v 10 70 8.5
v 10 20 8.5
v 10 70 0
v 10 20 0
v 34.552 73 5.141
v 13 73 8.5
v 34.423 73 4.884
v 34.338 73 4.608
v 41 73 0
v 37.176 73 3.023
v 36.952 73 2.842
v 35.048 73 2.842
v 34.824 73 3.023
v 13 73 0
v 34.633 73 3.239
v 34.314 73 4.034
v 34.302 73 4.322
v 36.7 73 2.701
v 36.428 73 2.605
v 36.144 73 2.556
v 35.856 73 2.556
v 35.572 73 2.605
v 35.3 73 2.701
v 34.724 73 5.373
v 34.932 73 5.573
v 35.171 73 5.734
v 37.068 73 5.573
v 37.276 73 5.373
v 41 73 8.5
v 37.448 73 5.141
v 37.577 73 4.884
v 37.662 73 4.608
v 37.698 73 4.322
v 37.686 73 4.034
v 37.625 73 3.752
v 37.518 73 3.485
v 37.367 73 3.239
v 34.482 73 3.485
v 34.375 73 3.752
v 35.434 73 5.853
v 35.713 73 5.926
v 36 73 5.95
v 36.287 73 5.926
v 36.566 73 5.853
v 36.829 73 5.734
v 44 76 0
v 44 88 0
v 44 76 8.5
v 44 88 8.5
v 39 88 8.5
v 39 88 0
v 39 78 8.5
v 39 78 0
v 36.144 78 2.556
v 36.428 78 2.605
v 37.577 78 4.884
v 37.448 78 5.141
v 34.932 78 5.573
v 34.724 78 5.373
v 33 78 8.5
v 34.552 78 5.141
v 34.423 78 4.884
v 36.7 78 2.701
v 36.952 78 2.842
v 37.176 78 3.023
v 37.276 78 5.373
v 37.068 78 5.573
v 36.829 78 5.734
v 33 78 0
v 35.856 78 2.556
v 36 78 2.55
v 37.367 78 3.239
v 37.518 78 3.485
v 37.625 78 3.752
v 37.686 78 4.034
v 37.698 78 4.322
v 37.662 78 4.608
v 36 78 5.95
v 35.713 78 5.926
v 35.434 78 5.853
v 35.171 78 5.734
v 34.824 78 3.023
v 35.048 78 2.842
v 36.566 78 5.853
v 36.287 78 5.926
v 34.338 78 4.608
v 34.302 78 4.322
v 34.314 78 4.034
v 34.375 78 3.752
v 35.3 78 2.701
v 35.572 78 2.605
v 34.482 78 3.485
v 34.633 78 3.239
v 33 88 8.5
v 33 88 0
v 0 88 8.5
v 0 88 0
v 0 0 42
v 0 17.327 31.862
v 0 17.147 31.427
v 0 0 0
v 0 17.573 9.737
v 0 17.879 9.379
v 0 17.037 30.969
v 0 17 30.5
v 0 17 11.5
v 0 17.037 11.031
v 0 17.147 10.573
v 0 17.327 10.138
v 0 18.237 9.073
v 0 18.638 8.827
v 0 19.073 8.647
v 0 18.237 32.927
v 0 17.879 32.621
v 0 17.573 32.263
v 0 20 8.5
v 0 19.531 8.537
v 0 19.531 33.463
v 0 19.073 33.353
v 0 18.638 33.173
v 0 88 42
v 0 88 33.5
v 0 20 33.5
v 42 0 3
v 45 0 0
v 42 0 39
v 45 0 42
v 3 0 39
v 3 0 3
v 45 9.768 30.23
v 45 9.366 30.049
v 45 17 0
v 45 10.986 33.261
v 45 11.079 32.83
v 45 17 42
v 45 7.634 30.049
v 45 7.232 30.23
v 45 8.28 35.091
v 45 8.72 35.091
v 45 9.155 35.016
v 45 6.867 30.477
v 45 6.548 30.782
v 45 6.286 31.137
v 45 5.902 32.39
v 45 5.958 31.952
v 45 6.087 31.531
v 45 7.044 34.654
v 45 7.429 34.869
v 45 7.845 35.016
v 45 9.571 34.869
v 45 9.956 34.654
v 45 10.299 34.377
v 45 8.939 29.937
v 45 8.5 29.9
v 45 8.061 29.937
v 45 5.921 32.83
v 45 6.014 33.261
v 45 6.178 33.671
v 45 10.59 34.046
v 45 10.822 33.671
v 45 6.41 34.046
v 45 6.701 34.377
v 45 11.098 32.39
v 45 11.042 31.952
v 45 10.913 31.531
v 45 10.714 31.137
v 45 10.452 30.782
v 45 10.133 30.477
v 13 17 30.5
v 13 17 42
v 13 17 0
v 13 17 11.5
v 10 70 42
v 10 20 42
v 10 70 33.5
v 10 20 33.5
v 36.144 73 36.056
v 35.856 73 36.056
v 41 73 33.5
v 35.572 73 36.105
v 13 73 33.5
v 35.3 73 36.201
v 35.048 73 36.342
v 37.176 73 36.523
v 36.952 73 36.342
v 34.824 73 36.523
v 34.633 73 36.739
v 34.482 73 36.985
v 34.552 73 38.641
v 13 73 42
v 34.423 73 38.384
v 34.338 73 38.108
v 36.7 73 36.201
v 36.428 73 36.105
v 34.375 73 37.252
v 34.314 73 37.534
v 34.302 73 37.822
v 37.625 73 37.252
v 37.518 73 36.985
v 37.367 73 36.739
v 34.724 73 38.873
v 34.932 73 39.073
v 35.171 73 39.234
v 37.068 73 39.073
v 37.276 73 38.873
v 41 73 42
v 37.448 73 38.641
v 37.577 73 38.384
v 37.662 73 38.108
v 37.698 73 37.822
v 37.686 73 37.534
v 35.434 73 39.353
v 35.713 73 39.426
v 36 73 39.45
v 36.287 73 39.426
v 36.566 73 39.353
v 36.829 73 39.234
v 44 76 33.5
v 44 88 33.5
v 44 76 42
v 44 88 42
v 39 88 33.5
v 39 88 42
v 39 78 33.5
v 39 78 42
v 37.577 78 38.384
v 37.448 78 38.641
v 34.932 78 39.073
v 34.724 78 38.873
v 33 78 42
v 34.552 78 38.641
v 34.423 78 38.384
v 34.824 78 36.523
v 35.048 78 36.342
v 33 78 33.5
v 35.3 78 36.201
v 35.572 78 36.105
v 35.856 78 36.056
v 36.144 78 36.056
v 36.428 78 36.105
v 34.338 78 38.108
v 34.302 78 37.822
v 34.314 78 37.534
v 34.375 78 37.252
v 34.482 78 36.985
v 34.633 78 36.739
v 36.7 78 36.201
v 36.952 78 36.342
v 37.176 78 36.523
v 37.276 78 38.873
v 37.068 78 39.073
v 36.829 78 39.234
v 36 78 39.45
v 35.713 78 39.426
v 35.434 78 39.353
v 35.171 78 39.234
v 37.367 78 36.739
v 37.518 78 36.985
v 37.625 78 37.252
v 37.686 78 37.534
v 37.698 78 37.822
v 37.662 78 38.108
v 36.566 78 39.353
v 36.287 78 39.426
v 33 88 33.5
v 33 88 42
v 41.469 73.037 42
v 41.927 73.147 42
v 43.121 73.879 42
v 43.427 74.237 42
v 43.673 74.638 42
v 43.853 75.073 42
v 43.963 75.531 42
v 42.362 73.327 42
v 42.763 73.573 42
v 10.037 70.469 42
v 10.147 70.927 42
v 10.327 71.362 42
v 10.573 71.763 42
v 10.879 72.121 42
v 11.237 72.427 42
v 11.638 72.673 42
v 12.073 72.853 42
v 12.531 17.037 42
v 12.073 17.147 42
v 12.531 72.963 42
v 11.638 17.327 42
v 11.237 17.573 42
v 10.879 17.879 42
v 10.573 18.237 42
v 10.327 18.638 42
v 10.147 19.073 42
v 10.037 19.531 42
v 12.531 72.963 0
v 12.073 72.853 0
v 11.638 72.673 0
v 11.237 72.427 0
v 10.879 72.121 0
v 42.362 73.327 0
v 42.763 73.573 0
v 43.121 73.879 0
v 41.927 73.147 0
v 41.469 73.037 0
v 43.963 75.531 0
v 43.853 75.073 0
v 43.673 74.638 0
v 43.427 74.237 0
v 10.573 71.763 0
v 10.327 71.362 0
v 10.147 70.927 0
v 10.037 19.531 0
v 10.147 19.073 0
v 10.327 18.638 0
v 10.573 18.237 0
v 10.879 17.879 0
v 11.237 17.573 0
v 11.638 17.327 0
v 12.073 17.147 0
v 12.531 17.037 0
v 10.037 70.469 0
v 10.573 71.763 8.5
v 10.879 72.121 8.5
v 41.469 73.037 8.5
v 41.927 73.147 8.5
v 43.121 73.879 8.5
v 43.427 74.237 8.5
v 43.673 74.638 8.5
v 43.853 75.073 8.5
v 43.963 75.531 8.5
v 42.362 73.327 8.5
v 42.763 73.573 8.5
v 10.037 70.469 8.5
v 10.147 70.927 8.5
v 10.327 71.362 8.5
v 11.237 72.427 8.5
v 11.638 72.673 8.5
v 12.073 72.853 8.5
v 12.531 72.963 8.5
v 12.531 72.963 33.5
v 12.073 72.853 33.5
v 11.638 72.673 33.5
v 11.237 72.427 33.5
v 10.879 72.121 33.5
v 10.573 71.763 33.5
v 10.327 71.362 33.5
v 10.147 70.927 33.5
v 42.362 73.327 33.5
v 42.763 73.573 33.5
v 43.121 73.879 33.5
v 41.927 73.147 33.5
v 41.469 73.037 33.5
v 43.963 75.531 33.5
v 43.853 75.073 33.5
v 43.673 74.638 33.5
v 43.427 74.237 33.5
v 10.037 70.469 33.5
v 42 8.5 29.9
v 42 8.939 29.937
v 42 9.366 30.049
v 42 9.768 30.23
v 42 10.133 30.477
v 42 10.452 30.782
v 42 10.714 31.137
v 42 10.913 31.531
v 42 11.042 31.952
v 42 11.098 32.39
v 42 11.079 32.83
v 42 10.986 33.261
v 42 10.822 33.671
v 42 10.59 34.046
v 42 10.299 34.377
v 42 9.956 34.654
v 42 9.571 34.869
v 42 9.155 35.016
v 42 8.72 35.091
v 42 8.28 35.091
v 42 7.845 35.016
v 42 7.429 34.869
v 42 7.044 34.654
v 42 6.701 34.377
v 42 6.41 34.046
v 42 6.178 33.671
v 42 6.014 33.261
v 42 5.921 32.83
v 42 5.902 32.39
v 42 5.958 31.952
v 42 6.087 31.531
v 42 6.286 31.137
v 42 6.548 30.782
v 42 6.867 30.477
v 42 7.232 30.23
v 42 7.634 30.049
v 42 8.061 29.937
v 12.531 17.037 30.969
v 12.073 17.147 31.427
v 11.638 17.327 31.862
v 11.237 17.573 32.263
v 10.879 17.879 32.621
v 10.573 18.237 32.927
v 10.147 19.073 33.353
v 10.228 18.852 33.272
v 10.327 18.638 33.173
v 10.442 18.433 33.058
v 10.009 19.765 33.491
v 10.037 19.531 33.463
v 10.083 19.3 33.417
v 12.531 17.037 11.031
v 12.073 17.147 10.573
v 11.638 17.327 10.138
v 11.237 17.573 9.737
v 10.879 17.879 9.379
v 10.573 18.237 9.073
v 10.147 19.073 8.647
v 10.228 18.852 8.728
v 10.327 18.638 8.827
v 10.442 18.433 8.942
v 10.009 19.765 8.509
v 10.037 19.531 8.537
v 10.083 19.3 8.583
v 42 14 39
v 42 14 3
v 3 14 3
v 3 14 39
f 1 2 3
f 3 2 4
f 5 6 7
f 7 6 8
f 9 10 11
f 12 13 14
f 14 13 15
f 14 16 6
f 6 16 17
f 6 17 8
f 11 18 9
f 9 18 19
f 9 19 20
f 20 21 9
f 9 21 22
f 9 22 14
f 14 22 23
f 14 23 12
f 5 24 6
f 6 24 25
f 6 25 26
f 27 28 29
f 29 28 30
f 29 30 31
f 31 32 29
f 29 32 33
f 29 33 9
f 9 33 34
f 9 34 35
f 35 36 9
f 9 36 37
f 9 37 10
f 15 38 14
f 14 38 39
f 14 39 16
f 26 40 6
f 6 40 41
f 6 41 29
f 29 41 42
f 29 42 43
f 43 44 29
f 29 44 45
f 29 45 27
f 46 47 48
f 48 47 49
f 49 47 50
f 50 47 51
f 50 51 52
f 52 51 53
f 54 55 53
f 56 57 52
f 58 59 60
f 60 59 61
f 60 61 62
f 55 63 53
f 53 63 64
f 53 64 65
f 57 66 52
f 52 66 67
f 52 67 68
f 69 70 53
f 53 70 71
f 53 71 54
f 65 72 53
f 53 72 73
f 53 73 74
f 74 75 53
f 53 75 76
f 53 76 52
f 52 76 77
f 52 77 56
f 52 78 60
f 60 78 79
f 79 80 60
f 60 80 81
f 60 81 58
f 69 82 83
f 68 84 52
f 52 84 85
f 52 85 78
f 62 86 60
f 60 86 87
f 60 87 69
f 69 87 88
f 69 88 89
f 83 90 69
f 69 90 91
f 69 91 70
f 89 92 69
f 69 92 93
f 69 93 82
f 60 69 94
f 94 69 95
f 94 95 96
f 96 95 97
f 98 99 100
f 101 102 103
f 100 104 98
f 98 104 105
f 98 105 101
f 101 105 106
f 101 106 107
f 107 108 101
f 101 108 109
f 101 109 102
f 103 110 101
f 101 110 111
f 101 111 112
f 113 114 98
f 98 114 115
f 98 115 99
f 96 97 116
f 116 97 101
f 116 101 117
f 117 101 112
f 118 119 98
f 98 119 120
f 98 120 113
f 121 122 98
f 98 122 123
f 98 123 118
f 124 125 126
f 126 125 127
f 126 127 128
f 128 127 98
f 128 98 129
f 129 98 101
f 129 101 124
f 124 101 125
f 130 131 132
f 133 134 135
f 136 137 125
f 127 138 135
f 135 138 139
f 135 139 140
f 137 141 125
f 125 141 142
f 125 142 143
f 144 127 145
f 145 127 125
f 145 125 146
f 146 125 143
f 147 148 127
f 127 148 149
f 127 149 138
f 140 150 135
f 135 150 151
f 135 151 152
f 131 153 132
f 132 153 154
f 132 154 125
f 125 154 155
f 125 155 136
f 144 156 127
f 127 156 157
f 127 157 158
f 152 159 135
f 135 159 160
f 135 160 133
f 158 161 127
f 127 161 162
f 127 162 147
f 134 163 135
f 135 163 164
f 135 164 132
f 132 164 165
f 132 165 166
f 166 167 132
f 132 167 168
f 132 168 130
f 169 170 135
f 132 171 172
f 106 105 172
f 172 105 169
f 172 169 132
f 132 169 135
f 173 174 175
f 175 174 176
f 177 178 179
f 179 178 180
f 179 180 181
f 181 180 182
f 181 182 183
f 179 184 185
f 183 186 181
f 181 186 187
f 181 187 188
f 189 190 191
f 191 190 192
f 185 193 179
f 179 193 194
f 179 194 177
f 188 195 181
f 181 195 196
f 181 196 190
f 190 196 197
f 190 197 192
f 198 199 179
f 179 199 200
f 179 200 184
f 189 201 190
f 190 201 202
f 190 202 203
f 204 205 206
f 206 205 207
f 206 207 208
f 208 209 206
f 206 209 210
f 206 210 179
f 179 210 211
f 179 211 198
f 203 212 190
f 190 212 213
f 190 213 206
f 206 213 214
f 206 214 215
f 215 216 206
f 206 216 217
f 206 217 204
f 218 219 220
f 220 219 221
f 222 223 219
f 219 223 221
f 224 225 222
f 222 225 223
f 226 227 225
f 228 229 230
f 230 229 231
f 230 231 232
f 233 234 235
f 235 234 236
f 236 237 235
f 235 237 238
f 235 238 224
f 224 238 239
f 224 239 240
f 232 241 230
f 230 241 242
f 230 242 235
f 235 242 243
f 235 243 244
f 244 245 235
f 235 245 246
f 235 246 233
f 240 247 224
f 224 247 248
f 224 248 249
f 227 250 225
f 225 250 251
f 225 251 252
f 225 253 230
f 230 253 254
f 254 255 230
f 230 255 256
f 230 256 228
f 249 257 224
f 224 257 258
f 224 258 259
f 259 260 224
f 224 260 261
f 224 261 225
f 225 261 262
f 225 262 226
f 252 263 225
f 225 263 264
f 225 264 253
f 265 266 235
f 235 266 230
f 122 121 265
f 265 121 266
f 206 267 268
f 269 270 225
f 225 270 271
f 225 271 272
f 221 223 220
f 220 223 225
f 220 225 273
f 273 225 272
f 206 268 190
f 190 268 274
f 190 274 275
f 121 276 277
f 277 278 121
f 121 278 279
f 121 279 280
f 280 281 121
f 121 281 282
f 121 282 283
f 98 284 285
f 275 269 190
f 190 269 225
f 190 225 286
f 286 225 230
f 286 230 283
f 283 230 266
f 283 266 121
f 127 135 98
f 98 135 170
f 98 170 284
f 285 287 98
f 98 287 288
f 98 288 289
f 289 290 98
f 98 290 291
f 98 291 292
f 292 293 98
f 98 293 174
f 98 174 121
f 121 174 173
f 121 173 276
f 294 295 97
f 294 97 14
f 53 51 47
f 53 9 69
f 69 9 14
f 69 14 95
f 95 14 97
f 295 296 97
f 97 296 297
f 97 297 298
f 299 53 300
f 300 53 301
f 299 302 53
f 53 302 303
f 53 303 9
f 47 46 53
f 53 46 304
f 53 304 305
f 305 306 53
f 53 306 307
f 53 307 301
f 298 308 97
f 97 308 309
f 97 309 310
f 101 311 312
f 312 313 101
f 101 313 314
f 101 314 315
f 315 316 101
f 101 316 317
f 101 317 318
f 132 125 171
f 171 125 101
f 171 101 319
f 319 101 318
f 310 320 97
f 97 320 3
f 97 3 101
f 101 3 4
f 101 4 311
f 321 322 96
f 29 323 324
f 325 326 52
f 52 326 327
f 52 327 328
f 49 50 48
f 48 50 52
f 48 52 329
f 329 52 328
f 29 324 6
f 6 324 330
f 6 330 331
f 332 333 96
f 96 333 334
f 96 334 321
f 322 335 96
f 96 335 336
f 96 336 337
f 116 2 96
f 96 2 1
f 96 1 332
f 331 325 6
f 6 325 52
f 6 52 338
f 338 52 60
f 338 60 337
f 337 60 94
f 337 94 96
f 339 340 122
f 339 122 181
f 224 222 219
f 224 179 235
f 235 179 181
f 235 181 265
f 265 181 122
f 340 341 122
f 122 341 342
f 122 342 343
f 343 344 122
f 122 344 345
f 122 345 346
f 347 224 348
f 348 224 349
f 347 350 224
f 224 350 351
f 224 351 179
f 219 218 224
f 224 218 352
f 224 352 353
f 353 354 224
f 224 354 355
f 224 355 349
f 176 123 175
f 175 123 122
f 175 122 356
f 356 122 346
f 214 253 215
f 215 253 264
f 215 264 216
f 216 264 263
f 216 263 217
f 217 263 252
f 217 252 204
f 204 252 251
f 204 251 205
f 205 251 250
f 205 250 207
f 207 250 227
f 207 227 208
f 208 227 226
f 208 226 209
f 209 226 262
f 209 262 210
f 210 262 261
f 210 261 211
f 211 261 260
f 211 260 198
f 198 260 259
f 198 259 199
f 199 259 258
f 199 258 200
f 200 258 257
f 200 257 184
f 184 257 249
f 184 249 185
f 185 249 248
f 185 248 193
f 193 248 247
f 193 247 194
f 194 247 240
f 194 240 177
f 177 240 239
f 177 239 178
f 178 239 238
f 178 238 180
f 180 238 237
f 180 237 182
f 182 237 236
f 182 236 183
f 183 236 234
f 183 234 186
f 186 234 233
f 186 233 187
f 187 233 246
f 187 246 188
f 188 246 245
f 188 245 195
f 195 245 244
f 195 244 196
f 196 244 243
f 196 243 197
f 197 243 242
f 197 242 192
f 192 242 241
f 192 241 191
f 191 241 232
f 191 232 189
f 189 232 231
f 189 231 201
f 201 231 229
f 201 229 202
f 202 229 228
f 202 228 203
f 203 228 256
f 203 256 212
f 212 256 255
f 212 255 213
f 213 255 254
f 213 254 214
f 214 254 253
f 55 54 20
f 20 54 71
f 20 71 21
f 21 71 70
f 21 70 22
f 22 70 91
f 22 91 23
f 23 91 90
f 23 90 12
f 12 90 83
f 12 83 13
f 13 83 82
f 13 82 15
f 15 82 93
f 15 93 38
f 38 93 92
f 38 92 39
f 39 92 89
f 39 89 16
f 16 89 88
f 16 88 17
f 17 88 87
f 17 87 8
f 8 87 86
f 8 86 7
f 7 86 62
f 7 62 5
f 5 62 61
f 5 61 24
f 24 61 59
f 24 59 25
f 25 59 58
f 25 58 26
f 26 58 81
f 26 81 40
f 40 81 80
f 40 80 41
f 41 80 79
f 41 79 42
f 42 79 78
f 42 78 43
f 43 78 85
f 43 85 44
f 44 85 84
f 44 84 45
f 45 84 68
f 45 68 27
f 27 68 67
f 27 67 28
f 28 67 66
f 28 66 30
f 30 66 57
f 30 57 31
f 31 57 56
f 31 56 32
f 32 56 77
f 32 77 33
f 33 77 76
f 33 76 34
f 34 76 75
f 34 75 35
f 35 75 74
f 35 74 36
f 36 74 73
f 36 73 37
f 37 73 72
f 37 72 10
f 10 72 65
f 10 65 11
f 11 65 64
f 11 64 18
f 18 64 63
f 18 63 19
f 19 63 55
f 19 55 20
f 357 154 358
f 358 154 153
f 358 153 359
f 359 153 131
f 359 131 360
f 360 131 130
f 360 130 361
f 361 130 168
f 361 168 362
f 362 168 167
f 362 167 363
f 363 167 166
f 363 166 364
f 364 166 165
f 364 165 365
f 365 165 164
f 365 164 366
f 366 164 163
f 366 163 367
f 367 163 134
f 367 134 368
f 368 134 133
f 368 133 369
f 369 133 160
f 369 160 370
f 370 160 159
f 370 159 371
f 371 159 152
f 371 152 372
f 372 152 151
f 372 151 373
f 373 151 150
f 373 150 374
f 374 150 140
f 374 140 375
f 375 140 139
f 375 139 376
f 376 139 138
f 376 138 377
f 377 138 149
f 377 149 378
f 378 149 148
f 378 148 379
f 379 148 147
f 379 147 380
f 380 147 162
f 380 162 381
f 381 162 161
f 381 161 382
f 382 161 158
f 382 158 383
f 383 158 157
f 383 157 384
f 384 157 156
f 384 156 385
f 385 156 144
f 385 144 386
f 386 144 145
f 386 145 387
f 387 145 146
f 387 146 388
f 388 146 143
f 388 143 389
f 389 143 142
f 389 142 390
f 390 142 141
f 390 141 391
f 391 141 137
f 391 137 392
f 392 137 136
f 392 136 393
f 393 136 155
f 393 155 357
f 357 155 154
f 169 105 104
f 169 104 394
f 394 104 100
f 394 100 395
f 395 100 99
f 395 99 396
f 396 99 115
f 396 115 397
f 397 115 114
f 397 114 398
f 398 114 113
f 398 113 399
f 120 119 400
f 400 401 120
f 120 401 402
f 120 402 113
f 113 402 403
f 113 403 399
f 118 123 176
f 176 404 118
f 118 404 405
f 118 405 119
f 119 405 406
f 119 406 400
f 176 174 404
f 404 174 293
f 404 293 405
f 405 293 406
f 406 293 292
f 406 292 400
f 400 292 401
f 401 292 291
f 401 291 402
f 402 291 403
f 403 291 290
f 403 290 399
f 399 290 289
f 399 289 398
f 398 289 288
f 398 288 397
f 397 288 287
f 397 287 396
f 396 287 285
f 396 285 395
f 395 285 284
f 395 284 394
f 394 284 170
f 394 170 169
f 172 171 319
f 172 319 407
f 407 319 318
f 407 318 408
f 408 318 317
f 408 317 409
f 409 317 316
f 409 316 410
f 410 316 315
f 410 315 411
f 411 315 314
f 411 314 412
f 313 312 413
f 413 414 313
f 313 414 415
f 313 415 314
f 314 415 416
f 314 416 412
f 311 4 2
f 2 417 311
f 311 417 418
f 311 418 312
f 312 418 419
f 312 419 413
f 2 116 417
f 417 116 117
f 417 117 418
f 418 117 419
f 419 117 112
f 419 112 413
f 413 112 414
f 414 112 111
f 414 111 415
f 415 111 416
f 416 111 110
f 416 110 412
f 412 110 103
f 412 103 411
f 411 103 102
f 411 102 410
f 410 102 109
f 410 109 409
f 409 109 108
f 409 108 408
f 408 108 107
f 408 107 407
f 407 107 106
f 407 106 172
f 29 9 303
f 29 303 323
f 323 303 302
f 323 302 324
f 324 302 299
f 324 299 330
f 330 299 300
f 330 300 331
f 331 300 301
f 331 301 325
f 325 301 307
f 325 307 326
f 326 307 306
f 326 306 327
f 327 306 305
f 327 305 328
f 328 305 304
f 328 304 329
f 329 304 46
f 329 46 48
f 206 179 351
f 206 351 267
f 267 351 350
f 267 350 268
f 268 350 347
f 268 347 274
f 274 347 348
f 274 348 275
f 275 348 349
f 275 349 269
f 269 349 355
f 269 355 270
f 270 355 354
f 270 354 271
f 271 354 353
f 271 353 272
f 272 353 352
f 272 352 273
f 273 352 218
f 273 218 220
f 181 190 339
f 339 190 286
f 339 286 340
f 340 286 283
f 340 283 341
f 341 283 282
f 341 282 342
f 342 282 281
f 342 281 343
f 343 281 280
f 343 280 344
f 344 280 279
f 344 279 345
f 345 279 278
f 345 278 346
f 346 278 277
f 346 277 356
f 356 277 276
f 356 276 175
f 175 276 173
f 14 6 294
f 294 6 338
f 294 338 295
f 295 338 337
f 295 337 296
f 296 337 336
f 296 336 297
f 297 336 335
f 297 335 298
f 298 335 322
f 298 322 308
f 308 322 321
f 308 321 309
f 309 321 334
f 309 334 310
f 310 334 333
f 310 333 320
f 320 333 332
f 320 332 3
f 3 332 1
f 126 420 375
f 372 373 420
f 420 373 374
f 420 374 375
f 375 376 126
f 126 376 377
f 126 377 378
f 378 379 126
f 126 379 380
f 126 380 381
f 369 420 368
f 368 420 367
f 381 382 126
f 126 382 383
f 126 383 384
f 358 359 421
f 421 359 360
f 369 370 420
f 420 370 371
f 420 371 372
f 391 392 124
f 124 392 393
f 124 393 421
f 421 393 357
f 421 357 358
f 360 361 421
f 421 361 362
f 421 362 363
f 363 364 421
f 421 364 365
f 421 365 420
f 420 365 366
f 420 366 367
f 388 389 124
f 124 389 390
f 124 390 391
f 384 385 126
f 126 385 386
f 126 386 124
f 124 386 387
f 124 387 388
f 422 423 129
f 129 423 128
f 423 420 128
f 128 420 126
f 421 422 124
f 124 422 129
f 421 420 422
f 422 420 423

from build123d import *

# Parameters (mm, degrees)
BOSS_EXTRUDE1_DEPTH = 42
SKETCH2_W           = 25
SKETCH2_H           = 71
CUT_EXTRUDE1_DEPTH  = 108.391806019
CUT_EXTRUDE2_REACH  = 101.363
SKETCH4_R           = 1.7
SKETCH7_R           = 2.6
CUT_EXTRUDE3_DEPTH  = 10
FILLET1_R           = 3
FILLET2_R           = 3
SKETCH8_W           = 39
SKETCH8_H           = 36
CUT_EXTRUDE4_DEPTH  = 14


with BuildPart() as part:
    # Sketch1 → Boss-Extrude1 (new body)
    with BuildSketch(Plane.XY):
        Polygon((10, 17), (45, 17), (45, 0), (0, 0), (0, 88), (33, 88), (33, 78), (39, 78), (39, 88), (44, 88), (44, 73), (10, 73), align=None)
    extrude(amount=BOSS_EXTRUDE1_DEPTH)

    # Sketch2 → Cut-Extrude1 (cut, through all)
    with BuildSketch(Plane.ZY):
        with Locations((21, 52.5)):
            Rectangle(SKETCH2_W, SKETCH2_H)
    extrude(amount=-CUT_EXTRUDE1_DEPTH, mode=Mode.SUBTRACT)

    # Sketch4 → Cut-Extrude2 (cut, up to next)
    with BuildSketch(Plane(origin=(0, 78, 0), x_dir=(1, 0, 0), z_dir=(0, 1, 0)), mode=Mode.PRIVATE) as cut_extrude2_sk1:
        with Locations(Location((36, -37.75, 0), (0, 0, 270))):
            Circle(SKETCH4_R)
    cut_extrude2_tool1 = extrude(cut_extrude2_sk1.sketch, amount=-CUT_EXTRUDE2_REACH, mode=Mode.PRIVATE) & part.part
    # Sketch4 → Cut-Extrude2 (cut, up to next)
    with BuildSketch(Plane(origin=(0, 78, 0), x_dir=(1, 0, 0), z_dir=(0, 1, 0)), mode=Mode.PRIVATE) as cut_extrude2_sk2:
        with Locations(Location((36, -4.25, 0), (0, 0, 270))):
            Circle(SKETCH4_R)
    cut_extrude2_tool2 = extrude(cut_extrude2_sk2.sketch, amount=-CUT_EXTRUDE2_REACH, mode=Mode.PRIVATE) & part.part
    add(cut_extrude2_tool1.solids().sort_by_distance((36, 78, 37.75))[0], mode=Mode.SUBTRACT)
    add(cut_extrude2_tool2.solids().sort_by_distance((36, 78, 4.25))[0], mode=Mode.SUBTRACT)

    # Sketch7 → Cut-Extrude3 (cut)
    with BuildSketch(Plane(origin=(45, 0, 0), x_dir=(0, 0, -1), z_dir=(1, 0, 0))):
        with Locations((-32.5, 8.5)):
            Circle(SKETCH7_R)
    extrude(amount=-CUT_EXTRUDE3_DEPTH, mode=Mode.SUBTRACT)

    # Fillet1
    fillet1_edges = [part.edges().sort_by_distance(p)[0] for p in [
        (10, 17, 37.75),
        (10, 17, 4.25),
        (5, 17, 33.5),
        (5, 17, 8.5),
    ]]
    fillet(fillet1_edges, radius=FILLET1_R)

    # Fillet2
    fillet2_edges = [part.edges().sort_by_distance(p)[0] for p in [
        (44, 73, 37.75),
        (10, 73, 37.75),
        (44, 73, 4.25),
        (10, 73, 4.25),
    ]]
    fillet(fillet2_edges, radius=FILLET2_R)

    # Sketch8 → Cut-Extrude4 (cut)
    with BuildSketch(Plane.XZ):
        with Locations((22.5, 21)):
            Rectangle(SKETCH8_W, SKETCH8_H)
    extrude(amount=-CUT_EXTRUDE4_DEPTH, mode=Mode.SUBTRACT)


solid = part.part
